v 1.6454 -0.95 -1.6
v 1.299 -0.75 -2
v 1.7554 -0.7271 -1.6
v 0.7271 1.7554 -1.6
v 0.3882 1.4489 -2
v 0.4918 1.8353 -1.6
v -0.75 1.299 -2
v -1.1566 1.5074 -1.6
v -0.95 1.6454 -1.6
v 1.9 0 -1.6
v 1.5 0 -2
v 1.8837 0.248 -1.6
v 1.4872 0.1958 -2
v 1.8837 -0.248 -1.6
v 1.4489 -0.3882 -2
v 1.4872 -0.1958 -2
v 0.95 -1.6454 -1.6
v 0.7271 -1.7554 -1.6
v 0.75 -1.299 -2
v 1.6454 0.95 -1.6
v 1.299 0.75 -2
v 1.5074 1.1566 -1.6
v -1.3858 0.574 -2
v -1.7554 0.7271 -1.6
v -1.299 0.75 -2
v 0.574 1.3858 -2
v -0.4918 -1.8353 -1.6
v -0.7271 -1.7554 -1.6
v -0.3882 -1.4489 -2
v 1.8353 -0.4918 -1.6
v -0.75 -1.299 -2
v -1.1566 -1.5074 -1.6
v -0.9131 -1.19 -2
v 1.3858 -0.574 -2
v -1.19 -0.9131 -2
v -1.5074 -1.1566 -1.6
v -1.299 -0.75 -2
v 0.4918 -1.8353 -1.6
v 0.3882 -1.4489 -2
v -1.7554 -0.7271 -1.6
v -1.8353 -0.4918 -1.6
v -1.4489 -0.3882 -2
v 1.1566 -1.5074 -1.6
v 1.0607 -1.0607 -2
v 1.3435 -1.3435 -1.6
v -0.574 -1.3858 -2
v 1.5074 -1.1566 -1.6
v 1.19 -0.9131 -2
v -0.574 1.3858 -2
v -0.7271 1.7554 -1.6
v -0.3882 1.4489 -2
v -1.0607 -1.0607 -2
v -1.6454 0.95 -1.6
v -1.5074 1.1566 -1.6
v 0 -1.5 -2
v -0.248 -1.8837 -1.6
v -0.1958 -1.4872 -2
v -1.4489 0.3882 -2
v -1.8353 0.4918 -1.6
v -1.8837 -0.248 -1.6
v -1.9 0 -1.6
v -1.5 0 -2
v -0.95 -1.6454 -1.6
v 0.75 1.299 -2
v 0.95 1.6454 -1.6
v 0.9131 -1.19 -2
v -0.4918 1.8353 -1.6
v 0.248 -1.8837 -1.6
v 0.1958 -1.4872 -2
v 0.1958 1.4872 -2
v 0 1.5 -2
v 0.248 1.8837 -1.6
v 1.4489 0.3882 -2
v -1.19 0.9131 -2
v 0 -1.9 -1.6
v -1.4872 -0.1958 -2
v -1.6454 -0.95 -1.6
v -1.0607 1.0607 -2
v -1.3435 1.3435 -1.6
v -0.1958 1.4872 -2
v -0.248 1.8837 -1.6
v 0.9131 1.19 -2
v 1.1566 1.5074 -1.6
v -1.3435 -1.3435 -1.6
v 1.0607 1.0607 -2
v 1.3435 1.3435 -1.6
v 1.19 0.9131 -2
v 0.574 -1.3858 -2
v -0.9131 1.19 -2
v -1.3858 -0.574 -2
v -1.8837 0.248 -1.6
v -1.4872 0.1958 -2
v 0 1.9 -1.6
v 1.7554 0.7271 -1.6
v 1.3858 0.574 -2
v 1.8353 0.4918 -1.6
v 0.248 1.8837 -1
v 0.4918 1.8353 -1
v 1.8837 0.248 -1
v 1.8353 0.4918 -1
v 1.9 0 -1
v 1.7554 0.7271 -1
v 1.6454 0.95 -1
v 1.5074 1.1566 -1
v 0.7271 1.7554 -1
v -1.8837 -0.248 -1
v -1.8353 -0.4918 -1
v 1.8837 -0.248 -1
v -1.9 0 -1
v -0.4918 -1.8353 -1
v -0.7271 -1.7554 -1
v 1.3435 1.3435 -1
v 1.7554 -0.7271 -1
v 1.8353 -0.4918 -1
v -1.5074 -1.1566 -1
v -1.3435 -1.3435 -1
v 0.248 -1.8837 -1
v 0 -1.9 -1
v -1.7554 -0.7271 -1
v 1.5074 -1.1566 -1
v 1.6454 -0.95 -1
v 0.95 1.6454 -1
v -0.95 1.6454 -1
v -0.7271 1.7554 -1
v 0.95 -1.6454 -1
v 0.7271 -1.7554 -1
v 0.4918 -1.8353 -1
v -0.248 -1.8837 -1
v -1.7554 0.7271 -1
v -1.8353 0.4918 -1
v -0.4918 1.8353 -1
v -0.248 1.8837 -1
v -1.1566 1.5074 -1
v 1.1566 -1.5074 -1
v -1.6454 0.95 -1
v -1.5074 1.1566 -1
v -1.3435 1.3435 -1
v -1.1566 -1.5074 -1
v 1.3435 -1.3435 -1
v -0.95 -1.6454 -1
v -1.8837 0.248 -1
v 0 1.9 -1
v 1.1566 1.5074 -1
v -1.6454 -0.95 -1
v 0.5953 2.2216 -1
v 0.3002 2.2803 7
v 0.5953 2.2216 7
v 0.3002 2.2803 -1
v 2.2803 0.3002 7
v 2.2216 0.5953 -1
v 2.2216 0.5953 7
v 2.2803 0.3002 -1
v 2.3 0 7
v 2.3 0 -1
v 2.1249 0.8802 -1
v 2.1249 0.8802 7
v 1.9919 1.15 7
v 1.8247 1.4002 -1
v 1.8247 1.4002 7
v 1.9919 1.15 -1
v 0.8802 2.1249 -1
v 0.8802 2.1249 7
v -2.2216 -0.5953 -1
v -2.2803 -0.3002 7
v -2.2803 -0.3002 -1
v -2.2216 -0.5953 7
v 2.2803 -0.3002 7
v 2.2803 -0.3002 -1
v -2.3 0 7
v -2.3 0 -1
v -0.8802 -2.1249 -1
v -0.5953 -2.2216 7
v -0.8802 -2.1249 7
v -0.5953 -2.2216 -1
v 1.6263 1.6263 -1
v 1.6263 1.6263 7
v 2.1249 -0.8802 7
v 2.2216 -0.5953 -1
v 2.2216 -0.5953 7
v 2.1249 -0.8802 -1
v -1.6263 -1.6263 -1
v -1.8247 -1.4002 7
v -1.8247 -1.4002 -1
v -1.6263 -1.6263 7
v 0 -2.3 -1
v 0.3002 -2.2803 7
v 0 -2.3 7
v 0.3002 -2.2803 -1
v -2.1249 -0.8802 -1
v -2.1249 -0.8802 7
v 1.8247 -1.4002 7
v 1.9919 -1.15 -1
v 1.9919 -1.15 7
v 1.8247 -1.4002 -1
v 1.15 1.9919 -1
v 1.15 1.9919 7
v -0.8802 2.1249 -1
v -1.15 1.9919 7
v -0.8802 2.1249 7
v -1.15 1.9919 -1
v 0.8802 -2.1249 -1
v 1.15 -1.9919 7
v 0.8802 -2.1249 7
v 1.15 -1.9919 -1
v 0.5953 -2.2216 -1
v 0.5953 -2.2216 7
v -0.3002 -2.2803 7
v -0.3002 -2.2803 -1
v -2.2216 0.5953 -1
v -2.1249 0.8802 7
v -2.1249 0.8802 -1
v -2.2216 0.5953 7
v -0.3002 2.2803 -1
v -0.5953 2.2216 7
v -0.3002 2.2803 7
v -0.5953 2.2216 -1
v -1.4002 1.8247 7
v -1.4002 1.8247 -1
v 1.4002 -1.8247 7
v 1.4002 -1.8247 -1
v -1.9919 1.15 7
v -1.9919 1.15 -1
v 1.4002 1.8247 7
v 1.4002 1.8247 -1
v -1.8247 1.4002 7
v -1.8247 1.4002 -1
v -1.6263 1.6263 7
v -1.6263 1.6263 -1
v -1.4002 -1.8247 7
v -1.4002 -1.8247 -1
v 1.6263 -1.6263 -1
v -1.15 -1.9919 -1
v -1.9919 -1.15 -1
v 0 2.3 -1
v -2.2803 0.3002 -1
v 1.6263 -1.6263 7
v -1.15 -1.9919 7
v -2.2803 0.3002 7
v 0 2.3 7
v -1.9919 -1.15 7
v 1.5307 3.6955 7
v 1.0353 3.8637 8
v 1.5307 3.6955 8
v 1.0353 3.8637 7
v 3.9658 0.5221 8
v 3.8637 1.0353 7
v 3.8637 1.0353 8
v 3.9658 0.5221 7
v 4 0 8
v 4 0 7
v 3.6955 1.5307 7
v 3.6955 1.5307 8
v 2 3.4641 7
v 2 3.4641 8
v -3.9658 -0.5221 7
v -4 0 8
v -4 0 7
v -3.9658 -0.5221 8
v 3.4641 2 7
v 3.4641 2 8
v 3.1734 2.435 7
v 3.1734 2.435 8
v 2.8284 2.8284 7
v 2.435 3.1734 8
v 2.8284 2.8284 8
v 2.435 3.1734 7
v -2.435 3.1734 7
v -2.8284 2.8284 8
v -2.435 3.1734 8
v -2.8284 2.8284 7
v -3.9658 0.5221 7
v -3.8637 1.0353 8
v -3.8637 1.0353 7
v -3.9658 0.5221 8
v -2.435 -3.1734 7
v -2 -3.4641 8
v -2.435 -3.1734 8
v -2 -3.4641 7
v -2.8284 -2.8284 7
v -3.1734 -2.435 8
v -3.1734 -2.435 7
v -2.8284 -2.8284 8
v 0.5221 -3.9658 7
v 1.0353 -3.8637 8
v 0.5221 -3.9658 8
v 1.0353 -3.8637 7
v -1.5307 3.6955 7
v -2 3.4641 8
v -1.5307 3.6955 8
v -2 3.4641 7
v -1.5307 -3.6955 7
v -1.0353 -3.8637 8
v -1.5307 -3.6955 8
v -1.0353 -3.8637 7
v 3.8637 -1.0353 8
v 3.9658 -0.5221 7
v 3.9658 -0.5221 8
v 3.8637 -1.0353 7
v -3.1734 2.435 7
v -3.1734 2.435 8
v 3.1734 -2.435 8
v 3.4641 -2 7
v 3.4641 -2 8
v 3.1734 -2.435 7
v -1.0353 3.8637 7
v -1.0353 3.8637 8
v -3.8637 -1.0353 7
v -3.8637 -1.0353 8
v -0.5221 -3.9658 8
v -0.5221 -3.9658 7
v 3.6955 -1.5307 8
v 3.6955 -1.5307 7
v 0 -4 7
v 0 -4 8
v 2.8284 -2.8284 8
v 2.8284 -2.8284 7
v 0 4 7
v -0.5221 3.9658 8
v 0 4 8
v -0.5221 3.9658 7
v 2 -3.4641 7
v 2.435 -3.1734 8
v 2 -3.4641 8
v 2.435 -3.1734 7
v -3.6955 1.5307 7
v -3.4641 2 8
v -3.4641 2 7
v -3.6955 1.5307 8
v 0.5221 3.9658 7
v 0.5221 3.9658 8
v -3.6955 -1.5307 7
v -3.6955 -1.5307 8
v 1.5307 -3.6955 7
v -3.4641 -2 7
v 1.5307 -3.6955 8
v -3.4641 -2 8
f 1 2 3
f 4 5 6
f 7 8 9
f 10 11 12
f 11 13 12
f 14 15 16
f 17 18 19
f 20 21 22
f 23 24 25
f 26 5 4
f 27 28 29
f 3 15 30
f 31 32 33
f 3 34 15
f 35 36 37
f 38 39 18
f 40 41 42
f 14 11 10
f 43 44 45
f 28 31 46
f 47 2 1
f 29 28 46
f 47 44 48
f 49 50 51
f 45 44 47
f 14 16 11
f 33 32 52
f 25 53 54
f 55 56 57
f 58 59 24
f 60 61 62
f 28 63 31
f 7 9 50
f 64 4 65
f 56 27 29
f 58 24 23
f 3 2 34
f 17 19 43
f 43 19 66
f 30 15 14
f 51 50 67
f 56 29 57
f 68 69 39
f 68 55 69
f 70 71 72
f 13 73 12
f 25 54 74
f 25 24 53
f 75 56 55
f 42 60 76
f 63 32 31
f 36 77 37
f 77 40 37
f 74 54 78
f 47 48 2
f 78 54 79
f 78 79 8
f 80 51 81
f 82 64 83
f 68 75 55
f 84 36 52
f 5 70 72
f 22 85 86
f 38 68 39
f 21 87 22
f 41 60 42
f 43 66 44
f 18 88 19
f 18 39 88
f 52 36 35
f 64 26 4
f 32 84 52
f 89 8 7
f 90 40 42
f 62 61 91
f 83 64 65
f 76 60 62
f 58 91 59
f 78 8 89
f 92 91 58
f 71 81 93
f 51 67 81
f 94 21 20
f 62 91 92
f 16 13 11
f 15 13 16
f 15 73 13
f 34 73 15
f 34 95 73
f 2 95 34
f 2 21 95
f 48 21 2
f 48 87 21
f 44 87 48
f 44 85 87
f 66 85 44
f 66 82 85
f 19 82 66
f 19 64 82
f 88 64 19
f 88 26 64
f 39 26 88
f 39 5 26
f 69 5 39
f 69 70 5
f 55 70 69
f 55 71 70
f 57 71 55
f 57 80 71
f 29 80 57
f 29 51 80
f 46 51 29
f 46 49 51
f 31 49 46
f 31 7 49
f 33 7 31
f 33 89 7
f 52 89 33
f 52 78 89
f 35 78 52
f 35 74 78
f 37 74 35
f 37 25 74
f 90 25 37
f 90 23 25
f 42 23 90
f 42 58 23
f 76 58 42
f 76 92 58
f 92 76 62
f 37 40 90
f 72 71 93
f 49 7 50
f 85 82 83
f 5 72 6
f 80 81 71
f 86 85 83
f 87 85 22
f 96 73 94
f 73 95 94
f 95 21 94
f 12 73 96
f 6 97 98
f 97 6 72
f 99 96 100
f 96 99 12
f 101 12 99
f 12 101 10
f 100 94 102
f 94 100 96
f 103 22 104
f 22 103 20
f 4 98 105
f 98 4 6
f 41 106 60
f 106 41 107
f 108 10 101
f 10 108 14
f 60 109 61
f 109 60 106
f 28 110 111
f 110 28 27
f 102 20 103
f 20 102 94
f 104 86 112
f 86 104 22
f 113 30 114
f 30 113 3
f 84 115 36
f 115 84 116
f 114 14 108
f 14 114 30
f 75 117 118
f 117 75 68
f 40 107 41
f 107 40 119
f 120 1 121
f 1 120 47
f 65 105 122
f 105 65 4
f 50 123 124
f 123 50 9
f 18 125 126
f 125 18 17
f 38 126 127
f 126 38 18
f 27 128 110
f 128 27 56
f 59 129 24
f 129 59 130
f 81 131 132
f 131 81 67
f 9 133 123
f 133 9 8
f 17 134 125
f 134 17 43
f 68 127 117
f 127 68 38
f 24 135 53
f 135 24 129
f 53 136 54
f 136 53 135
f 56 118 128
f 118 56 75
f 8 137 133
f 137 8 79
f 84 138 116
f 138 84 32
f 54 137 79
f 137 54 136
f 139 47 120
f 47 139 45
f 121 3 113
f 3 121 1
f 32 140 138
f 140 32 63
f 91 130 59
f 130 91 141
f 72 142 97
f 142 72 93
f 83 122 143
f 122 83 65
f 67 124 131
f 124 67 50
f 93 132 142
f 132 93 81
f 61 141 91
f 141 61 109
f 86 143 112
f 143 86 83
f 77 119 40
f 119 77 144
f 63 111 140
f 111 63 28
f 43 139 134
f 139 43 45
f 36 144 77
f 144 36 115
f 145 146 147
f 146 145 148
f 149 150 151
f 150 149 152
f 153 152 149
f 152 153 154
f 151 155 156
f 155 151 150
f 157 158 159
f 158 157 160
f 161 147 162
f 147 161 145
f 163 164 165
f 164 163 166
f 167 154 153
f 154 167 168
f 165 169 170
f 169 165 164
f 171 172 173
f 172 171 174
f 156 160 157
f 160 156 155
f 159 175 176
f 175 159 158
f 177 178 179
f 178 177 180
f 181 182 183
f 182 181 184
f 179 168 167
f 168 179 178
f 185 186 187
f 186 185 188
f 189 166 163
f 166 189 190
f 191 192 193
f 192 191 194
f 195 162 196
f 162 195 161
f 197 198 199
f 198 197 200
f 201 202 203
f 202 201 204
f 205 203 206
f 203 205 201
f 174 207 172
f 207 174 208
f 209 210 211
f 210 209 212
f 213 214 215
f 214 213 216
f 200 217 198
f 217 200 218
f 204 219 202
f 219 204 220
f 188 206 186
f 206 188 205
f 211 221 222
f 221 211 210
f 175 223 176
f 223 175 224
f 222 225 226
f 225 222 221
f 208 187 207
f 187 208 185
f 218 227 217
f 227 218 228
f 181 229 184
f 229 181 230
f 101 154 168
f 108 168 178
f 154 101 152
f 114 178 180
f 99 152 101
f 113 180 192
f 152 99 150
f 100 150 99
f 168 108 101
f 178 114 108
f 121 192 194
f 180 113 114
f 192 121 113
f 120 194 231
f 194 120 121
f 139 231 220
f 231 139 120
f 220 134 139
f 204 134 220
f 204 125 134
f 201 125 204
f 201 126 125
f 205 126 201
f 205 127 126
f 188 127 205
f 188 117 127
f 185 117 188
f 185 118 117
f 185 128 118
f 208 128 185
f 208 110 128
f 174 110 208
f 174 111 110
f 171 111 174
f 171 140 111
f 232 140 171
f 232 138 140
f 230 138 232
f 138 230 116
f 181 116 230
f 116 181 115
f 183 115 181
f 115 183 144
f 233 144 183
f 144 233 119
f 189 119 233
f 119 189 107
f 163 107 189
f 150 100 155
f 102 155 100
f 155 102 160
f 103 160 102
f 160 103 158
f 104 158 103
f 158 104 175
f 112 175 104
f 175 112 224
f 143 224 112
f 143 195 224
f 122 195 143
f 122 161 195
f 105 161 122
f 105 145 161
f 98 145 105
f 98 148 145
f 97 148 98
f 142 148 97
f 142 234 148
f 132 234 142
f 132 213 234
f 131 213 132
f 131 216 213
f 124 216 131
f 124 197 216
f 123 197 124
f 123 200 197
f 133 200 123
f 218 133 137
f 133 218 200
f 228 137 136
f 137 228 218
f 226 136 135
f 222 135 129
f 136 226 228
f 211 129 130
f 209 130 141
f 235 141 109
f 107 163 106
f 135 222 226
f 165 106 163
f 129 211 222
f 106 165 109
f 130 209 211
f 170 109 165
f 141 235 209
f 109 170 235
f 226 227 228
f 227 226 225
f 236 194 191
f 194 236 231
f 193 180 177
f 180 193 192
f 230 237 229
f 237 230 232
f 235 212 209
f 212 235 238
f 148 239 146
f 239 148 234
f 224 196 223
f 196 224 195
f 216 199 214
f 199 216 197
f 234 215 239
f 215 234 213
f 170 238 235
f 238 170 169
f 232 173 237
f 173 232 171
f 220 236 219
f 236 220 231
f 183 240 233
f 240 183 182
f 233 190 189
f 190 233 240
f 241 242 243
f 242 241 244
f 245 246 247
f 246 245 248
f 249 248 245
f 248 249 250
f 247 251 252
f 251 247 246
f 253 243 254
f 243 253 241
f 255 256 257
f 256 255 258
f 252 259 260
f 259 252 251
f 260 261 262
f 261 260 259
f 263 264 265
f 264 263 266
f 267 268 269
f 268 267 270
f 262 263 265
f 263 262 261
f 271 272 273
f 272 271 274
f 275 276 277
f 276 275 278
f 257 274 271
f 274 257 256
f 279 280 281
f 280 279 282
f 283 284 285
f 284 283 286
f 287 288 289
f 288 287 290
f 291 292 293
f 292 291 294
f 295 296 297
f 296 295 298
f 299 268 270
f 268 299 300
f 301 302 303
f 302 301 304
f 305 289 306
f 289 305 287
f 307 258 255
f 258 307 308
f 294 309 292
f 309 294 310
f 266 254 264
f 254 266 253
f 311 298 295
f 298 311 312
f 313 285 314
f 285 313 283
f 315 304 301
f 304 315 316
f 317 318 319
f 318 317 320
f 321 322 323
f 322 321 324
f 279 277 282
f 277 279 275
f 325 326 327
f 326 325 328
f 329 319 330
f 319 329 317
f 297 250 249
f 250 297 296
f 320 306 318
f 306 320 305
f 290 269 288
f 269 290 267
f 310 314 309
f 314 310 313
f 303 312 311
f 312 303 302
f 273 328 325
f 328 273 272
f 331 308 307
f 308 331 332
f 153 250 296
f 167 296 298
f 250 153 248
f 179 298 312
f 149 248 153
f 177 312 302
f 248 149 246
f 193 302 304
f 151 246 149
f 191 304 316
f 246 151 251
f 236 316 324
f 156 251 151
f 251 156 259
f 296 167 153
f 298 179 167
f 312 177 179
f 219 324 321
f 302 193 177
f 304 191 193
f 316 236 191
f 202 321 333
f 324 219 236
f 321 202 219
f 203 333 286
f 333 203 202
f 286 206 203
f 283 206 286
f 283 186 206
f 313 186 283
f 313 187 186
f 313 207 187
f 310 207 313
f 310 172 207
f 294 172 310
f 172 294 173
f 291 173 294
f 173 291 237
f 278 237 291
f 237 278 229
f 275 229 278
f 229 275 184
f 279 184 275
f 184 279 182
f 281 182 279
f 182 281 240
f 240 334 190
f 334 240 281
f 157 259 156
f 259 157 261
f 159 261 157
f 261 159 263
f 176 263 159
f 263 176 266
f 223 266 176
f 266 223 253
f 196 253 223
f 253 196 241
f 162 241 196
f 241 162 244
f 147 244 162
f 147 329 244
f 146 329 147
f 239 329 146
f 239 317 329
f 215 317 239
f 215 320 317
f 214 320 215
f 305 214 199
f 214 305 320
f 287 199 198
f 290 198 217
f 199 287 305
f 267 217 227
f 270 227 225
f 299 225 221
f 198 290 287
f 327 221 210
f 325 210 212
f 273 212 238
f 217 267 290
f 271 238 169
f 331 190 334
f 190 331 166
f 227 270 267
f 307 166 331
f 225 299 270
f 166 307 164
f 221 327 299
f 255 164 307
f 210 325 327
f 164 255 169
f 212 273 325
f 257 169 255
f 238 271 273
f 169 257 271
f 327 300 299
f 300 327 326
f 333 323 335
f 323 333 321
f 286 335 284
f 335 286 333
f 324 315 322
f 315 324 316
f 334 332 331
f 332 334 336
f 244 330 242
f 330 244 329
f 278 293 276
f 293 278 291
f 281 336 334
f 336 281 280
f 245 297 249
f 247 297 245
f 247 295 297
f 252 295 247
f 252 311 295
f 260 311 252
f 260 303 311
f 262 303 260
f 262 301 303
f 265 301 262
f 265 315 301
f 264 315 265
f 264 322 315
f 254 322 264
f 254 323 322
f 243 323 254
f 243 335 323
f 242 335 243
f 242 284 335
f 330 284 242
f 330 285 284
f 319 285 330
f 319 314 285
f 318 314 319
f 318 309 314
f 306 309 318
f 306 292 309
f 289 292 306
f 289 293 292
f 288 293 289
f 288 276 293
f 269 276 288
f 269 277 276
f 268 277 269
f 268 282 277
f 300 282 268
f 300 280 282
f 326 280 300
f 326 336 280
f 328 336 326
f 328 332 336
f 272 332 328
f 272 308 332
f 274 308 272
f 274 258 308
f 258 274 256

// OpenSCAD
// file: params.scad
// ============================================================
// PARAMS — primitivos e derivados do sistema
// ============================================================
// FONTE ÚNICA dos primitivos no OpenSCAD. Toda peça faz
// `include <params.scad>` em vez de redeclarar.
//
// Antes disto os 7 primitivos estavam copiados em brick, pin,
// node e dock — 28 declarações para 7 valores. Foi o que deixou
// `pin_len` ficar 1.6 na spec e 2.0 em quatro implementações sem
// ninguém notar. O `make spec-check` DETECTA essa divergência;
// este arquivo IMPEDE que ela exista.
//
// Reatribuir daqui funciona por include aninhado — testado:
// variante -> peça -> params propaga e os derivados recomputam.
//
// ⚠️ Variável NOVA da variante tem de ser declarada ANTES do
// `include`. Depois dele o OpenSCAD avalia a reatribuição no
// ponto da declaração original, onde a variável nova ainda não
// existe: sai `WARNING: Ignoring unknown variable` e o valor
// errado, em silêncio.
//
// contrato: spec/parts/brick/contracts.toml
// premissas: spec/constitution.md
// ============================================================

/* [Primitivos do sistema] */

// Diâmetro do furo passante — a interface mecânica
hole_d = 4.0; // [1:0.1:30]

// Parede interna mínima (4 perímetros de 0.4)
wall = 1.6; // [0.4:0.1:6]

// Degrau RADIAL entre furo e rebaixo (1 bico de 0.4)
collar_w = 0.4; // [0:0.1:2]

// Profundidade AXIAL do rebaixo
collar_depth = 1.0; // [0.25:0.25:4]

// Folga de press-fit, subtraída sempre do MACHO
tolerance = 0.2; // [0:0.05:0.6]

// Folga real mínima entre dois machos que se aproximam
gap = 0.5; // [0:0.1:2]

// Protrusão do macho. DECLARADO, não derivado: o limite é a
// colisão com o macho PERPENDICULAR, e essa aproximação é
// DIAGONAL, não axial. Ver constitution.md § 5.
pin_len = 2.0; // [0.5:0.05:6]

/* [Qualidade] */
$fn = 48;

// ============================================================
// DERIVADOS — nada aqui é escolhido à mão
// ============================================================
grid     = hole_d + 2 * (wall + collar_w);
recess_d = hole_d + 2 * collar_w;
pin_d    = hole_d - tolerance;
collar_d = recess_d - tolerance;
inset    = grid / 2;

// Teto do macho: duas hastes perpendiculares se tocam aqui.
pin_len_max = grid / 2 - pin_d / 2;

// Furo de BORDA exige seção — é o que fixa o grid.
edge_bore_min = hole_d + 2 * wall;

// Chanfro de entrada do macho. Constante, não parâmetro: existe
// para o macho achar o furo, e ninguém decide isso peça a peça.
lead_in = 0.4;

assert(pin_len <= pin_len_max,
       str("macho longo demais: ", pin_len, " > ", pin_len_max,
           " — encosta no macho perpendicular da célula receptora"));
assert(pin_len > collar_depth,
       "colar mais fundo que a protrusão: a haste não sai do colar");
assert(hole_d * sqrt(2) > recess_d,
       "rebaixo morde a barra da aresta: exige hole_d·√2 > recess_d");

// ============================================================
// O CONECTOR — desenhado UMA vez, usado por toda peça
// ============================================================
// Referencial: origem no centro da face, +Z para FORA da peça.

// Vocabulário dos encaixes. A IR de montagem diz stud / socket / flat
// (spec/assembly.md § Nomes); os parâmetros das peças sempre disseram
// pin / recess / plain. As duas formas valem em qualquer -D.
function fb_kind(k) = k == "stud" ? "pin" : k == "socket" ? "recess" : k == "flat" ? "plain" : k;

// MACHO: colar (quem retém) + haste + chanfro de entrada.
// `sink` afunda a base no corpo, só para a união não ficar coplanar.
module fb_male(sink = 0) {
    translate([0, 0, -sink]) cylinder(d = collar_d, h = collar_depth + sink);
    cylinder(d = pin_d, h = pin_len - lead_in);
    translate([0, 0, pin_len - lead_in])
        cylinder(r1 = pin_d / 2, r2 = pin_d / 2 - lead_in, h = lead_in);
}

// FÊMEA (para subtrair): rebaixo que aloja o colar e, com `bore > 0`,
// o furo de profundidade `bore` atrás dele.
module fb_female(bore = 0, recess = true) {
    e = 0.02;
    if (recess) translate([0, 0, -collar_depth]) cylinder(d = recess_d, h = collar_depth + e);
    if (bore > 0) translate([0, 0, -bore]) cylinder(d = hole_d, h = bore + e);
}
// main file
// ============================================================
// AXLE — Design System 3D Modular
// ============================================================
// Eixo de roda. É um PIN de uma ponta com um MANCAL e um FLANGE
// no lugar da segunda ponta: a ponta interna prende na peça como
// qualquer macho, o mancal carrega a roda girando, e o flange
// segura a roda no lugar.
//
//   peça   │ roda (gira)        │
//   ───────┤────────────────────┤
//    ┌─┐┌──┴────────────────┐┌──┴┐
//    │ ││ colar   mancal    ││fl.│   ← flange no rebaixo da roda
//    └─┘└──┬────────────────┘└──┬┘
//   haste  │                    │
//
// Eixo ao longo de Z. z = 0 é a FACE da peça; z < 0 entra nela,
// z > 0 é o lado da roda.
//
// A ponta interna é IDÊNTICA à de um PIN: colar `collar_d` ×
// `collar_depth` no rebaixo + haste até `pin_len`. Por isso o
// eixo entra em qualquer porta `recess` e obedece às mesmas
// regras de encaixe (constituição § 5).
//
// Imprimir em pé, com o flange na mesa.
//
// spec: spec/parts/wheel.md
// ============================================================

include <params.scad>

// Largura da roda em células — o mancal acompanha
width_cells = 1; // [1:1:4]

// ============================================================
// DERIVADOS
// ============================================================
wheel_w  = width_cells * grid;
flange_d = recess_d + 2 * wall;
flange_h = collar_depth;
bearing  = wheel_w - flange_h;         // mancal: do rosto da peça ao flange

// ============================================================
// MÓDULOS
// ============================================================
module axle() {
    union() {
        // ponta interna — o mesmo macho de toda peça, virado para dentro
        mirror([0, 0, 1]) fb_male();
        // mancal + flange
        cylinder(d = collar_d, h = bearing + 0.01);
        translate([0, 0, bearing]) cylinder(d = flange_d, h = flange_h);
    }
}

// ============================================================
// RENDER
// ============================================================
part_color = [0.85, 0.55, 0.20];
color(part_color) axle();

echo("=== AXLE ===");
echo(str("Ponta       colar Ø", collar_d, "×", collar_depth, " + haste Ø", pin_d, " | entra ", pin_len, "mm"));
echo(str("Mancal      Ø", collar_d, " × ", bearing, "mm | flange Ø", flange_d, "×", flange_h));
